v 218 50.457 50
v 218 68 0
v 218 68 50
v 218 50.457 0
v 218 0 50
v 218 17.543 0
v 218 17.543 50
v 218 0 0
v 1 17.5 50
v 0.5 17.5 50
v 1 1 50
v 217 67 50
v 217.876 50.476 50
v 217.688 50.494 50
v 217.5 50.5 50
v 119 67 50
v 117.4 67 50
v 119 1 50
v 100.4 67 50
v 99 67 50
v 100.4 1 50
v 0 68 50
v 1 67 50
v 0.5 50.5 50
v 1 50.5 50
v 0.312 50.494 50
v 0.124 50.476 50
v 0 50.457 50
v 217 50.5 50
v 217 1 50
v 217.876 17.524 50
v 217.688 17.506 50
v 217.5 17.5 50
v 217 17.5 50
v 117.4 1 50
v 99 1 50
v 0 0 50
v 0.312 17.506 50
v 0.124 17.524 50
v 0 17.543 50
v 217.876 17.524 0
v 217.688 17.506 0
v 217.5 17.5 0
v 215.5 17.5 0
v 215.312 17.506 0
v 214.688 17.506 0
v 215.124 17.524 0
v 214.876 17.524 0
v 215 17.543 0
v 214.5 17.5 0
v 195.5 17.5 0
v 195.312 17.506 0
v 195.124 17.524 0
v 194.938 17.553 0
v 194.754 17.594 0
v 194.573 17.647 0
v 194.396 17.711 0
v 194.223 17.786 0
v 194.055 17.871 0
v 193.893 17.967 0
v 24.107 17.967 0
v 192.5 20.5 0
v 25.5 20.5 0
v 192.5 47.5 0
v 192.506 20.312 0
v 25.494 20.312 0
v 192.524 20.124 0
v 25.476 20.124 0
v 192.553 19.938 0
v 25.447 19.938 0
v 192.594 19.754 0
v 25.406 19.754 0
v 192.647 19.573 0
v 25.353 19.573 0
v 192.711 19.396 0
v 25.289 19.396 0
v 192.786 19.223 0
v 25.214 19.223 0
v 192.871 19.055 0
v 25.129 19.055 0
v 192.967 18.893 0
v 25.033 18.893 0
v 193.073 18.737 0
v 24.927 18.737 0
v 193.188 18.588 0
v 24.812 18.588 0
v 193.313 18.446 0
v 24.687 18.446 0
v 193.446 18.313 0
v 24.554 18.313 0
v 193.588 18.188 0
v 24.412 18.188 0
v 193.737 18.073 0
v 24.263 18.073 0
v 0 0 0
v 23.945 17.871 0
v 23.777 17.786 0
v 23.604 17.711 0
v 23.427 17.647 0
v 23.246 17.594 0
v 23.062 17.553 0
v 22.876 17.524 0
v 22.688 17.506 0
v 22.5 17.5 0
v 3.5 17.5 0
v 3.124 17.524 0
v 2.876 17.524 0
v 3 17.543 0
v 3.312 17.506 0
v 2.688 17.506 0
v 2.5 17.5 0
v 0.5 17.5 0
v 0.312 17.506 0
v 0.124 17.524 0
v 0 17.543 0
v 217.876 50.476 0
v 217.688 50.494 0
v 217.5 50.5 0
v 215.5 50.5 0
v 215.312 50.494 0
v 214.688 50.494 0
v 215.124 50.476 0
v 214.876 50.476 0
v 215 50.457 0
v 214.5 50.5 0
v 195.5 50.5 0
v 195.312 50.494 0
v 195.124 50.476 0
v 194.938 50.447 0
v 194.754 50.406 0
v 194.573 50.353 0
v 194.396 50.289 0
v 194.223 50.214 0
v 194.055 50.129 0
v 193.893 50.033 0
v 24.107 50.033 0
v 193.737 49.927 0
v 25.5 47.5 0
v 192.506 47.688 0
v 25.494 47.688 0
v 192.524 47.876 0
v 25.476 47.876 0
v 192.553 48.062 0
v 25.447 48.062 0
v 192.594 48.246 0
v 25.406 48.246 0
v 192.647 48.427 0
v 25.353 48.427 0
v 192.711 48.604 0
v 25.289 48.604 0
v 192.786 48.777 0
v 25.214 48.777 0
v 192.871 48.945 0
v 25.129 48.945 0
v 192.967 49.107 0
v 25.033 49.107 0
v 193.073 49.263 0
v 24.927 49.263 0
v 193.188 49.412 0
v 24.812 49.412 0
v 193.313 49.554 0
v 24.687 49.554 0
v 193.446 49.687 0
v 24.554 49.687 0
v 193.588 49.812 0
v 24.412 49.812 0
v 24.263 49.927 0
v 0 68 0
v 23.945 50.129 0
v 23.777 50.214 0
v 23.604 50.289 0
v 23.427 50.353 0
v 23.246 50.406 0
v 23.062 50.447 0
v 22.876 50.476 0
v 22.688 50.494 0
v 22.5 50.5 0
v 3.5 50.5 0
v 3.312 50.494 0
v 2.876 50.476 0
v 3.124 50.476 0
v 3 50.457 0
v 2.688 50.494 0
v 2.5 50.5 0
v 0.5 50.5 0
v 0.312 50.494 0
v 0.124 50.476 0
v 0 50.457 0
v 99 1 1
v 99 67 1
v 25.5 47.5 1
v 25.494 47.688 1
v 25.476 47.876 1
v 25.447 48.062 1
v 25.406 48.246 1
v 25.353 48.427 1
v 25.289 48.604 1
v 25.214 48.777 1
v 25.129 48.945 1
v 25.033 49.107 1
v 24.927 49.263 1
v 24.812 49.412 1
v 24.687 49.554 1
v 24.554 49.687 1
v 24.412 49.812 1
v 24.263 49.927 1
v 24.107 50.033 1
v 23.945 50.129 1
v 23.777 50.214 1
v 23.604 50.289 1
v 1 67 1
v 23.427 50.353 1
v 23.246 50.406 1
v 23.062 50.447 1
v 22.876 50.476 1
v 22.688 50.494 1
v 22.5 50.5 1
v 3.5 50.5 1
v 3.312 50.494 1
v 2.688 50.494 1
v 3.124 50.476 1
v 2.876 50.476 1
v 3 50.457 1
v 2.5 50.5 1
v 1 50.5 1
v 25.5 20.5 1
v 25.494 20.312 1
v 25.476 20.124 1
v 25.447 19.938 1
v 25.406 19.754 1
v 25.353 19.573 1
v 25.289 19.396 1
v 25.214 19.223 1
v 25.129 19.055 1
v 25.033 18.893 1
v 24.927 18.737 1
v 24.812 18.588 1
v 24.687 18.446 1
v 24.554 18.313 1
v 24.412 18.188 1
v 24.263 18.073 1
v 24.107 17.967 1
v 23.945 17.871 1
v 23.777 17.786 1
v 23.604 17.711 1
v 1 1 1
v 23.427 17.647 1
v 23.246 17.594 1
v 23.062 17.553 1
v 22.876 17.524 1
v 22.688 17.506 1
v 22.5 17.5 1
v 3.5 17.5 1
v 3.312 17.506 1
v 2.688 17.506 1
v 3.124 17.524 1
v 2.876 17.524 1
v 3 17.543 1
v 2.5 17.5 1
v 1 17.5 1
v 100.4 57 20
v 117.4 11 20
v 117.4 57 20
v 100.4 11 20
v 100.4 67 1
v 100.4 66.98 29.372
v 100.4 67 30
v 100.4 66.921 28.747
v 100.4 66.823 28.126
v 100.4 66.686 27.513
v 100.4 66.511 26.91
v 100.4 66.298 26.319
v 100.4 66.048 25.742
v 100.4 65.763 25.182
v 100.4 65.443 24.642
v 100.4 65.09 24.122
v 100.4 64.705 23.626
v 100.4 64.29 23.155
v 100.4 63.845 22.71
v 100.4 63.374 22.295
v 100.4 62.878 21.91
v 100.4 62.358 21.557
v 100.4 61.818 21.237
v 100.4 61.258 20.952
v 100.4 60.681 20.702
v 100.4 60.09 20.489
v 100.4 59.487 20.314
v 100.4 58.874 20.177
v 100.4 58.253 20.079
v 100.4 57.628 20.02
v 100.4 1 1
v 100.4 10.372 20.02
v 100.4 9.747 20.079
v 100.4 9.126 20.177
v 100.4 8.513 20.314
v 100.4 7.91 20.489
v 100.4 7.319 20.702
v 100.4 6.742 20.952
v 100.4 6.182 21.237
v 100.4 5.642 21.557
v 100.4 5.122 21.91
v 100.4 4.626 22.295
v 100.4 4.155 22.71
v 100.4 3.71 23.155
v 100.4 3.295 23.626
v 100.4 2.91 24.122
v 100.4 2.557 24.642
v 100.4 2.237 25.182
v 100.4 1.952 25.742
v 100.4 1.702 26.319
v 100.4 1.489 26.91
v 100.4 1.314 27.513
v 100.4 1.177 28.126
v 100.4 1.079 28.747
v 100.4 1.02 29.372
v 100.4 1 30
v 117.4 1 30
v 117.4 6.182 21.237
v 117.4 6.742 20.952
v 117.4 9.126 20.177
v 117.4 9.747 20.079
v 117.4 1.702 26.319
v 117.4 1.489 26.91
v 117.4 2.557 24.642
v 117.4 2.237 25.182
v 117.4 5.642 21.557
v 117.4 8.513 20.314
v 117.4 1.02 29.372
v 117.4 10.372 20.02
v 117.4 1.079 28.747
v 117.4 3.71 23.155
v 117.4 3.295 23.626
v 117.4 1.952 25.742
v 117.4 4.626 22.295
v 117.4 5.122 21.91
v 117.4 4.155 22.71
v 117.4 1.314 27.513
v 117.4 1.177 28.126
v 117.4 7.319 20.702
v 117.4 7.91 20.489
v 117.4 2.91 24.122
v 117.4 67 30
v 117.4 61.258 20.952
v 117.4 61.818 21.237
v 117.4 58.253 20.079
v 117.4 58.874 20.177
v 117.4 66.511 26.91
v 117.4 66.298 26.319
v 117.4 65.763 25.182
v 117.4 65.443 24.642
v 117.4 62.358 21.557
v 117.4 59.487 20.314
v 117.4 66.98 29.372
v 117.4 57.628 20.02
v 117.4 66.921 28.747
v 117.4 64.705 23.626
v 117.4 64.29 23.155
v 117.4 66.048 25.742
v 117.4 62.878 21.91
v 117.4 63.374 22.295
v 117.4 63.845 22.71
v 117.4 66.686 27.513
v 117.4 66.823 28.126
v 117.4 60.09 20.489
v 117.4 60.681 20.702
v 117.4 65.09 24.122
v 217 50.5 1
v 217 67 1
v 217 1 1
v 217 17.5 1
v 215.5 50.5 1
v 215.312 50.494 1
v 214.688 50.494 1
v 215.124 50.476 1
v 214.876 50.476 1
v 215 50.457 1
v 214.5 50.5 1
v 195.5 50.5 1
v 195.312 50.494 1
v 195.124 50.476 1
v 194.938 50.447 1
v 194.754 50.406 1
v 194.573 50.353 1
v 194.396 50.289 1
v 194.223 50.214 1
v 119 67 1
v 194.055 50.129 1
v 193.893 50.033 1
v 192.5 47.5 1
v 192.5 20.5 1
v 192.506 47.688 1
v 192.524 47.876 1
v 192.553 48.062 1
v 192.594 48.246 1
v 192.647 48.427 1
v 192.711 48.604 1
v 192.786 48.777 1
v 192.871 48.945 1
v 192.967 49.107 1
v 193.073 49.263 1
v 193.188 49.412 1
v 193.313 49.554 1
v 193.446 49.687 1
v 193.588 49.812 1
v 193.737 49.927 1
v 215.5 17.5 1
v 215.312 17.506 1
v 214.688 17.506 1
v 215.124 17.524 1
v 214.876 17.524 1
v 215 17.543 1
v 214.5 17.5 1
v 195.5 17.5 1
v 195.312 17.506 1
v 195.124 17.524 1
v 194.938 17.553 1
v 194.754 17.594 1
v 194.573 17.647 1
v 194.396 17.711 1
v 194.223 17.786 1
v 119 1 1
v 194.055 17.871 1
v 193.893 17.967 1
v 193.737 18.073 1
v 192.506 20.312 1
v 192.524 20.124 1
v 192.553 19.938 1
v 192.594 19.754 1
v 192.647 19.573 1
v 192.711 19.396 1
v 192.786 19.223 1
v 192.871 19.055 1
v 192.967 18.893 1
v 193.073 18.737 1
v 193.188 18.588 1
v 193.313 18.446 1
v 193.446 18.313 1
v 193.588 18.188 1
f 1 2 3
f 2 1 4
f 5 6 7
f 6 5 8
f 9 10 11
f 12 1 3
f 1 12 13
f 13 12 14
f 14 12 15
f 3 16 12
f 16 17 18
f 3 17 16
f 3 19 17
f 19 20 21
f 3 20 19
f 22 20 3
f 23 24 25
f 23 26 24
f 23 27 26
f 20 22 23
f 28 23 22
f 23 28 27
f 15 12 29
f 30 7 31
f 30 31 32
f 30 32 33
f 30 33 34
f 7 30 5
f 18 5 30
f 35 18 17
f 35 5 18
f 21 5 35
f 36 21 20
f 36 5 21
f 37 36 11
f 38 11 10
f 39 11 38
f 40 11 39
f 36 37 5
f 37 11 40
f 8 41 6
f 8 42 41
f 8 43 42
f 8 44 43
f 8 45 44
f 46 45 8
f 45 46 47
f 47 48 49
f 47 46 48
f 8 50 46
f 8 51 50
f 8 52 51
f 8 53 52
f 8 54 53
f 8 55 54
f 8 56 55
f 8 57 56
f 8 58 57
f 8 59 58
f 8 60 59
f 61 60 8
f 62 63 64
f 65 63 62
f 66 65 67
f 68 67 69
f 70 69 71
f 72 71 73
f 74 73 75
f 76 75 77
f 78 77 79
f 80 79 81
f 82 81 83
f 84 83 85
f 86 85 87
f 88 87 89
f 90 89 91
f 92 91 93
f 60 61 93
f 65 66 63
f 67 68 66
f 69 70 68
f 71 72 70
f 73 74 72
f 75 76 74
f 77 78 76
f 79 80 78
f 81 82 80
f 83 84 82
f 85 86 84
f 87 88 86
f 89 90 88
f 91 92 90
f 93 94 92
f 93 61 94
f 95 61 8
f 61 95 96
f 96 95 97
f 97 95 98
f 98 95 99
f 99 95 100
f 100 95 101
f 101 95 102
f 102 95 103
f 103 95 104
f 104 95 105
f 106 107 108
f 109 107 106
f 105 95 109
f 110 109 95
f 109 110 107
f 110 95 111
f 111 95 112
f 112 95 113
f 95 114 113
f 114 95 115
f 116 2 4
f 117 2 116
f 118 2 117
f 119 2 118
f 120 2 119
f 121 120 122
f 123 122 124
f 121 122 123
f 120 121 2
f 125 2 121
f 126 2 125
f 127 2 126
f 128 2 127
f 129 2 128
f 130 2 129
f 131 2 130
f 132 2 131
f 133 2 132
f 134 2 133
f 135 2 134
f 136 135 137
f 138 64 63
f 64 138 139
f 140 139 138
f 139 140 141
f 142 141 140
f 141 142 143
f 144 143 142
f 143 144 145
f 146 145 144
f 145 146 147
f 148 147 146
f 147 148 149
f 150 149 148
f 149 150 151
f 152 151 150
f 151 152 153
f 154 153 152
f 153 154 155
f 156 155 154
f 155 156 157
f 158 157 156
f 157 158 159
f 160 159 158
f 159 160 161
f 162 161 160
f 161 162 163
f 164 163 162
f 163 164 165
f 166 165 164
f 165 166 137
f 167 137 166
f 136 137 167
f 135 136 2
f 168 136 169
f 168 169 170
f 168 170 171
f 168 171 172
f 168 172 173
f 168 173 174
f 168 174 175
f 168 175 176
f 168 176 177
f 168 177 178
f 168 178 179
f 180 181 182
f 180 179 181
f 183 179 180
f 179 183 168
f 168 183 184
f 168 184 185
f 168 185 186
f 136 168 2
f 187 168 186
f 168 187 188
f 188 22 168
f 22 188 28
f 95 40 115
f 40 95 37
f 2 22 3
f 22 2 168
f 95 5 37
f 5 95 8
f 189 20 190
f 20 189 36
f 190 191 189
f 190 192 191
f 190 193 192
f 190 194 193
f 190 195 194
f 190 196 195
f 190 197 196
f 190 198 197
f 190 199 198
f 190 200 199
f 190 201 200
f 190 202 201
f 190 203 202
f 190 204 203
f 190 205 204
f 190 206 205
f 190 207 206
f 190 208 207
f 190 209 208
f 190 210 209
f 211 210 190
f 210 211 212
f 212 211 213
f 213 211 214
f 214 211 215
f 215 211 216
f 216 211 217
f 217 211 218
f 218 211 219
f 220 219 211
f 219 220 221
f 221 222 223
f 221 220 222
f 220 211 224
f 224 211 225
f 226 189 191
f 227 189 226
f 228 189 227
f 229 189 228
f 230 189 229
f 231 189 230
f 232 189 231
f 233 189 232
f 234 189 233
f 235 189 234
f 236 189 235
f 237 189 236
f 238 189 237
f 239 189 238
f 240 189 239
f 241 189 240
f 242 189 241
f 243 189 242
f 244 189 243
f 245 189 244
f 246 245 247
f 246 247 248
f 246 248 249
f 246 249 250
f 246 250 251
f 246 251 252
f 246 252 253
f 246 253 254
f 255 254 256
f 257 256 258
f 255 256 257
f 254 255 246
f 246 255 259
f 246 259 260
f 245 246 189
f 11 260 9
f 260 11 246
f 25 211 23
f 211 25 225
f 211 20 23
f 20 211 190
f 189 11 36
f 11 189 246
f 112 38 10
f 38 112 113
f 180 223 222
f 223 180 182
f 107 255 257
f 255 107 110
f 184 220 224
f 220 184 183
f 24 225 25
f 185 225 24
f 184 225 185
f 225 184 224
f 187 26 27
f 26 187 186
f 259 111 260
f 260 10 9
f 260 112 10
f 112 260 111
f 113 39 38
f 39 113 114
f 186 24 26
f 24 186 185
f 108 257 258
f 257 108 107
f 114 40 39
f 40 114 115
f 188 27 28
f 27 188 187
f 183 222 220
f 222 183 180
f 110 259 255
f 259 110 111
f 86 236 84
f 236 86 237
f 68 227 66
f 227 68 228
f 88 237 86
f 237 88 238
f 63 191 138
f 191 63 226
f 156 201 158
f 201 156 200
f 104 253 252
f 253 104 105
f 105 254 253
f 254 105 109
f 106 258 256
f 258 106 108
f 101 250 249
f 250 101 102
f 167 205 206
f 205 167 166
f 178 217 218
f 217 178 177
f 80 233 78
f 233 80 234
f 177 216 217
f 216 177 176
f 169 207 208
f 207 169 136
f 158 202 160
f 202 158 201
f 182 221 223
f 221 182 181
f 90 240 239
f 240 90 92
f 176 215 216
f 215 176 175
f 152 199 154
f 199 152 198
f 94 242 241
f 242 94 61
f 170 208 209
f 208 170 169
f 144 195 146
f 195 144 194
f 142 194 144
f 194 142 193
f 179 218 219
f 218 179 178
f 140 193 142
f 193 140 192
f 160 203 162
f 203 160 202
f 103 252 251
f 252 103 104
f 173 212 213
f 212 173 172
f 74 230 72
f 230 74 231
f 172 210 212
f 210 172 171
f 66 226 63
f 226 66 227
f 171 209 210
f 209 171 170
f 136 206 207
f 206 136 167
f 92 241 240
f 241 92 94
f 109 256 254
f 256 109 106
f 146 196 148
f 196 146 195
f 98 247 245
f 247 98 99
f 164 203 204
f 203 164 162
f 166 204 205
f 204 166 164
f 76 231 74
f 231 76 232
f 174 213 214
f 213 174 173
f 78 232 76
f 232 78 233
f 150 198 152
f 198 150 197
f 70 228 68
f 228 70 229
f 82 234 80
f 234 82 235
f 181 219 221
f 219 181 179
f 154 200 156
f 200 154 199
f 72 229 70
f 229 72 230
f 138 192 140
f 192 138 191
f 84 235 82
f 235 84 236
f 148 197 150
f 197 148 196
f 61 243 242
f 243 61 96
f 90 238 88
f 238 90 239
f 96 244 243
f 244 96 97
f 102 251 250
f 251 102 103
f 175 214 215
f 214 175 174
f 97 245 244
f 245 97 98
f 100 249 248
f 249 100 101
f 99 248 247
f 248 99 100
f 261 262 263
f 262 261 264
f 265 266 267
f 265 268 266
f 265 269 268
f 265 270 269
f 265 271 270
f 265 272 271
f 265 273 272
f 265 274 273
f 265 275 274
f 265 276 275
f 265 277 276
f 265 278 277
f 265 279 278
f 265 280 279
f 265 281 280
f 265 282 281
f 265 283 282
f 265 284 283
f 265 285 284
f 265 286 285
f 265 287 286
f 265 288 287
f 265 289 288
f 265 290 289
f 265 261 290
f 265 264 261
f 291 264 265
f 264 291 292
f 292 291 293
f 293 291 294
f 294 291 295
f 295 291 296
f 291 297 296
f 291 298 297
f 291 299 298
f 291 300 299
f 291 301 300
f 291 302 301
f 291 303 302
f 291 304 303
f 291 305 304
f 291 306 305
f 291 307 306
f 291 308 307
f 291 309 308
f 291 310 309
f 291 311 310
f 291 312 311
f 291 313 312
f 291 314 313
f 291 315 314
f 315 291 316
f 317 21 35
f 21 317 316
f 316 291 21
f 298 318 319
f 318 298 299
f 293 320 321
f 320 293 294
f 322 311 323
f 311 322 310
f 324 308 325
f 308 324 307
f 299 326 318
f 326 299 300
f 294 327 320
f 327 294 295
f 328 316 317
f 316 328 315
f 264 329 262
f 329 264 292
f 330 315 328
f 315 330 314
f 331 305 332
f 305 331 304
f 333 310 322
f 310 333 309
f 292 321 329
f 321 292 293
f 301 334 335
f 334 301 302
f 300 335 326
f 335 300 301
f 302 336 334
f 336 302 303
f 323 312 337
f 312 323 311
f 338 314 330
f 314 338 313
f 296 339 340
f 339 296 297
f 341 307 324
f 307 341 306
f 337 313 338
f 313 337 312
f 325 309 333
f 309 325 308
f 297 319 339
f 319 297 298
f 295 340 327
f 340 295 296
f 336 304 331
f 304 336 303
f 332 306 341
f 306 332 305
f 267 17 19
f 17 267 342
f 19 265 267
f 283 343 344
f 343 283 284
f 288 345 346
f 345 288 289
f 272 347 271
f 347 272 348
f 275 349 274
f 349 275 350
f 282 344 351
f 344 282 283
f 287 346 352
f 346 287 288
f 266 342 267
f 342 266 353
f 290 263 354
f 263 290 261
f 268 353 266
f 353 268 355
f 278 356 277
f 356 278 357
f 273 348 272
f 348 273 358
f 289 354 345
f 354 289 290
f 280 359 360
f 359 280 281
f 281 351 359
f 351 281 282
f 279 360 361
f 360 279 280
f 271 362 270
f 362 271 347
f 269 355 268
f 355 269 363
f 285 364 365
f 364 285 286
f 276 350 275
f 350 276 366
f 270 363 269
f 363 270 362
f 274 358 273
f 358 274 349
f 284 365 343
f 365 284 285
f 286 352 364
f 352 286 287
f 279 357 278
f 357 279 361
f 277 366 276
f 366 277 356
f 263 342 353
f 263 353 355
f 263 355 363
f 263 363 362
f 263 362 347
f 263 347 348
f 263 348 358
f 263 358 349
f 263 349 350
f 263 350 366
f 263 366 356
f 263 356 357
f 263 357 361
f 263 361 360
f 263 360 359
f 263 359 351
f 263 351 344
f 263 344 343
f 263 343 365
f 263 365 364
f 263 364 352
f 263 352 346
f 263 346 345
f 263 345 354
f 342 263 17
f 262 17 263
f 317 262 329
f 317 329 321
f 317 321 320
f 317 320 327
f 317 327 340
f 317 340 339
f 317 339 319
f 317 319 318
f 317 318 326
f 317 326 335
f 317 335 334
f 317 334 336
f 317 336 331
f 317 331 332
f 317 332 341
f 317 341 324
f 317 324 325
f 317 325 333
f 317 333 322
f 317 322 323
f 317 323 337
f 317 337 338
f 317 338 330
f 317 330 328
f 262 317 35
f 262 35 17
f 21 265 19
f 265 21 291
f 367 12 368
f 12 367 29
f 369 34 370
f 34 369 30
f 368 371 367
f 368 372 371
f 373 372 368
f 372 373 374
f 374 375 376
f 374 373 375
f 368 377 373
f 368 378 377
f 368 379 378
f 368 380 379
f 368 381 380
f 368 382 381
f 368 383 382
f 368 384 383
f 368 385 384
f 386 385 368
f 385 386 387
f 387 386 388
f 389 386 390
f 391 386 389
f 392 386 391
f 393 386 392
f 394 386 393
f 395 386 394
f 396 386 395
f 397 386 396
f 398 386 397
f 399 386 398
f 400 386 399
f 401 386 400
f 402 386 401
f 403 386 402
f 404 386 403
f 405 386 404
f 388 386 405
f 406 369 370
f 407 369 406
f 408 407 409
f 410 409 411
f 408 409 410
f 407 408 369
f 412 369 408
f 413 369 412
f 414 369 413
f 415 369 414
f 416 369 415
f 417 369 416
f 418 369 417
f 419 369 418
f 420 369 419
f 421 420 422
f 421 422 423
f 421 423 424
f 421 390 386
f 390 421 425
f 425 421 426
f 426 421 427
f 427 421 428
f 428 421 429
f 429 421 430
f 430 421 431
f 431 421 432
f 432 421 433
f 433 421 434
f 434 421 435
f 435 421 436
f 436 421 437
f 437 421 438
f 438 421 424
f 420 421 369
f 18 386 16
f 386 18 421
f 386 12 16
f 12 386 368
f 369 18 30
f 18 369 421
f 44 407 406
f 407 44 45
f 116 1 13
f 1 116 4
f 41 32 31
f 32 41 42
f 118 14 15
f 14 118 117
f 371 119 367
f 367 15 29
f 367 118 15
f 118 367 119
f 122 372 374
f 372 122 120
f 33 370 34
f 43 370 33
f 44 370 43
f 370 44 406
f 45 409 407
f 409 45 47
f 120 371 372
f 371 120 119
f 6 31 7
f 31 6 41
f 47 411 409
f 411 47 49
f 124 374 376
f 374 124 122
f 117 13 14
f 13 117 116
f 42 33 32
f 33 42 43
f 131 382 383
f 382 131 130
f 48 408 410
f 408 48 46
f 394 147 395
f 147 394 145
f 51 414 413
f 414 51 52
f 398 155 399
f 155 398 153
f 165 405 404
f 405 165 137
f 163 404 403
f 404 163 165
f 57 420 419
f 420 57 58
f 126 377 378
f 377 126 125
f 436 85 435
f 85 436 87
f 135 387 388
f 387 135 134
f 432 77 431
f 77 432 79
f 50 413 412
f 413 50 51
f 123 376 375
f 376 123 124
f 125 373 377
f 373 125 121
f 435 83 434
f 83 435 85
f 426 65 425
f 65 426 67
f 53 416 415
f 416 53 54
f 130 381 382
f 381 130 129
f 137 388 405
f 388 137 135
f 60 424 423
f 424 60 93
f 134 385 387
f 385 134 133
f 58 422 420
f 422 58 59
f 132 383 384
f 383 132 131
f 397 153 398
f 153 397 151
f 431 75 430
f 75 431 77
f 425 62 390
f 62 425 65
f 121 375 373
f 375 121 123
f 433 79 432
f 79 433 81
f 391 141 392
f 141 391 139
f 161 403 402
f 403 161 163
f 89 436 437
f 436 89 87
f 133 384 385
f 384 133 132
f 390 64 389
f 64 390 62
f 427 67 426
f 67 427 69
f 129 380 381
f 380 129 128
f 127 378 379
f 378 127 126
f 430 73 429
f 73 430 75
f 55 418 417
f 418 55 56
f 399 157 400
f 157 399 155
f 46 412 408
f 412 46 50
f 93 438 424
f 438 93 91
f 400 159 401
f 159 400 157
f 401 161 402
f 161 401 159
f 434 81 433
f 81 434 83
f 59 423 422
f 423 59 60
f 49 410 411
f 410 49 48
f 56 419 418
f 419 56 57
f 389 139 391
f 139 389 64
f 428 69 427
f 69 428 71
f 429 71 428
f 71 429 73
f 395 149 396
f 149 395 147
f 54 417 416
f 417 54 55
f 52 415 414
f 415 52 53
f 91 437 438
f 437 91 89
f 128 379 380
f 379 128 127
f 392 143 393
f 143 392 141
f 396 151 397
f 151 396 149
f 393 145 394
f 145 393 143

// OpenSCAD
include <boardgame_insert_toolkit_lib.2.scad>;

// determines whether lids are output.
g_b_print_lid = true;

// determines whether boxes are output.
g_b_print_box = true; 

// Focus on one box
g_isolated_print_box = ""; 

// Used to visualize how all of the boxes fit together. 
g_b_visualization = false;          
        
// this is the outer wall thickness. 
//Default = 1.5mm
g_wall_thickness = 1.0;

// The tolerance value is extra space put between planes of the lid and box that fit together.
// Increase the tolerance to loosen the fit and decrease it to tighten it.
//
// Note that the tolerance is applied exclusively to the lid.
// So if the lid is too tight or too loose, change this value ( up for looser fit, down for tighter fit ) and 
// you only need to reprint the lid.
// 
// The exception is the stackable box, where the bottom of the box is the lid of the box below,
// in which case the tolerance also affects that box bottom.
//
g_tolerance = 0.15;

// This adjusts the position of the lid detents downward. 
// The larger the value, the bigger the gap between the lid and the box.
g_tolerance_detents_pos = 0.1;

aw_size_x = 218.0;
aw_size_y = 68.0;
aw_size_z = 50.0;


data =
  [
    [
      "simple box",
      [
        [ BOX_SIZE_XYZ, [aw_size_x, aw_size_y, aw_size_z] ],
        [ BOX_NO_LID_B, t],
        [
          BOX_COMPONENT,
          [
            [
              CMP_COMPARTMENT_SIZE_XYZ,
              [
                98,
                (aw_size_y - 2.0),
                aw_size_z - g_wall_thickness
              ]
            ],
            [ CMP_NUM_COMPARTMENTS_XY, [1, 1] ],
            //[ CMP_FILLET_RADIUS, 5.0 ],
            [ POSITION_XY, [0, 0] ],
            [ CMP_CUTOUT_SIDES_4B,   [f,f,t,f]],
            //[ CMP_CUTOUT_DEPTH_PCT,  20],
            //[ CMP_CUTOUT_WIDTH_PCT,  50],
            //[ CMP_CUTOUT_HEIGHT_PCT, 100], 
            //[ CMP_SHAPE_ROTATED_B, t ],
            //[ CMP_SHAPE, FILLET ],
            //[ CMP_FILLET_RADIUS, 5.0 ],
          ]
        ],
        [
          BOX_COMPONENT,
          [
            [
              CMP_COMPARTMENT_SIZE_XYZ,
              [
                17,
                (aw_size_y - 2.0),
                30
              ]
            ],
            [ CMP_NUM_COMPARTMENTS_XY, [1, 1] ],
            [ POSITION_XY, [99.4, 0] ],
            [ CMP_CUTOUT_SIDES_4B,   [f,f,f,f]],
            //[ CMP_CUTOUT_DEPTH_PCT,  20],
            //[ CMP_CUTOUT_WIDTH_PCT,  50],
            //[ CMP_CUTOUT_HEIGHT_PCT, 100], 
            [ CMP_SHAPE_ROTATED_B, t ],
            [ CMP_SHAPE, FILLET ],
            [ CMP_FILLET_RADIUS, 10.0 ],
          ]
        ],
        [
          BOX_COMPONENT,
          [
            [
              CMP_COMPARTMENT_SIZE_XYZ,
              [
                98,
                (aw_size_y - 2.0),
                aw_size_z - g_wall_thickness
              ]
            ],
            [ CMP_NUM_COMPARTMENTS_XY, [1, 1] ],
            //[ CMP_FILLET_RADIUS, 5.0 ],
            [ POSITION_XY, [118, 0] ],
            [ CMP_CUTOUT_SIDES_4B,   [f,f,f,t]],
            //[ CMP_CUTOUT_DEPTH_PCT,  20],
            //[ CMP_CUTOUT_WIDTH_PCT,  50],
            //[ CMP_CUTOUT_HEIGHT_PCT, 100], 
            //[ CMP_SHAPE_ROTATED_B, t ],
            //[ CMP_SHAPE, FILLET ],
            //[ CMP_FILLET_RADIUS, 5.0 ],
          ]
        ],
      ]
    ]
  ];

MakeAll();
